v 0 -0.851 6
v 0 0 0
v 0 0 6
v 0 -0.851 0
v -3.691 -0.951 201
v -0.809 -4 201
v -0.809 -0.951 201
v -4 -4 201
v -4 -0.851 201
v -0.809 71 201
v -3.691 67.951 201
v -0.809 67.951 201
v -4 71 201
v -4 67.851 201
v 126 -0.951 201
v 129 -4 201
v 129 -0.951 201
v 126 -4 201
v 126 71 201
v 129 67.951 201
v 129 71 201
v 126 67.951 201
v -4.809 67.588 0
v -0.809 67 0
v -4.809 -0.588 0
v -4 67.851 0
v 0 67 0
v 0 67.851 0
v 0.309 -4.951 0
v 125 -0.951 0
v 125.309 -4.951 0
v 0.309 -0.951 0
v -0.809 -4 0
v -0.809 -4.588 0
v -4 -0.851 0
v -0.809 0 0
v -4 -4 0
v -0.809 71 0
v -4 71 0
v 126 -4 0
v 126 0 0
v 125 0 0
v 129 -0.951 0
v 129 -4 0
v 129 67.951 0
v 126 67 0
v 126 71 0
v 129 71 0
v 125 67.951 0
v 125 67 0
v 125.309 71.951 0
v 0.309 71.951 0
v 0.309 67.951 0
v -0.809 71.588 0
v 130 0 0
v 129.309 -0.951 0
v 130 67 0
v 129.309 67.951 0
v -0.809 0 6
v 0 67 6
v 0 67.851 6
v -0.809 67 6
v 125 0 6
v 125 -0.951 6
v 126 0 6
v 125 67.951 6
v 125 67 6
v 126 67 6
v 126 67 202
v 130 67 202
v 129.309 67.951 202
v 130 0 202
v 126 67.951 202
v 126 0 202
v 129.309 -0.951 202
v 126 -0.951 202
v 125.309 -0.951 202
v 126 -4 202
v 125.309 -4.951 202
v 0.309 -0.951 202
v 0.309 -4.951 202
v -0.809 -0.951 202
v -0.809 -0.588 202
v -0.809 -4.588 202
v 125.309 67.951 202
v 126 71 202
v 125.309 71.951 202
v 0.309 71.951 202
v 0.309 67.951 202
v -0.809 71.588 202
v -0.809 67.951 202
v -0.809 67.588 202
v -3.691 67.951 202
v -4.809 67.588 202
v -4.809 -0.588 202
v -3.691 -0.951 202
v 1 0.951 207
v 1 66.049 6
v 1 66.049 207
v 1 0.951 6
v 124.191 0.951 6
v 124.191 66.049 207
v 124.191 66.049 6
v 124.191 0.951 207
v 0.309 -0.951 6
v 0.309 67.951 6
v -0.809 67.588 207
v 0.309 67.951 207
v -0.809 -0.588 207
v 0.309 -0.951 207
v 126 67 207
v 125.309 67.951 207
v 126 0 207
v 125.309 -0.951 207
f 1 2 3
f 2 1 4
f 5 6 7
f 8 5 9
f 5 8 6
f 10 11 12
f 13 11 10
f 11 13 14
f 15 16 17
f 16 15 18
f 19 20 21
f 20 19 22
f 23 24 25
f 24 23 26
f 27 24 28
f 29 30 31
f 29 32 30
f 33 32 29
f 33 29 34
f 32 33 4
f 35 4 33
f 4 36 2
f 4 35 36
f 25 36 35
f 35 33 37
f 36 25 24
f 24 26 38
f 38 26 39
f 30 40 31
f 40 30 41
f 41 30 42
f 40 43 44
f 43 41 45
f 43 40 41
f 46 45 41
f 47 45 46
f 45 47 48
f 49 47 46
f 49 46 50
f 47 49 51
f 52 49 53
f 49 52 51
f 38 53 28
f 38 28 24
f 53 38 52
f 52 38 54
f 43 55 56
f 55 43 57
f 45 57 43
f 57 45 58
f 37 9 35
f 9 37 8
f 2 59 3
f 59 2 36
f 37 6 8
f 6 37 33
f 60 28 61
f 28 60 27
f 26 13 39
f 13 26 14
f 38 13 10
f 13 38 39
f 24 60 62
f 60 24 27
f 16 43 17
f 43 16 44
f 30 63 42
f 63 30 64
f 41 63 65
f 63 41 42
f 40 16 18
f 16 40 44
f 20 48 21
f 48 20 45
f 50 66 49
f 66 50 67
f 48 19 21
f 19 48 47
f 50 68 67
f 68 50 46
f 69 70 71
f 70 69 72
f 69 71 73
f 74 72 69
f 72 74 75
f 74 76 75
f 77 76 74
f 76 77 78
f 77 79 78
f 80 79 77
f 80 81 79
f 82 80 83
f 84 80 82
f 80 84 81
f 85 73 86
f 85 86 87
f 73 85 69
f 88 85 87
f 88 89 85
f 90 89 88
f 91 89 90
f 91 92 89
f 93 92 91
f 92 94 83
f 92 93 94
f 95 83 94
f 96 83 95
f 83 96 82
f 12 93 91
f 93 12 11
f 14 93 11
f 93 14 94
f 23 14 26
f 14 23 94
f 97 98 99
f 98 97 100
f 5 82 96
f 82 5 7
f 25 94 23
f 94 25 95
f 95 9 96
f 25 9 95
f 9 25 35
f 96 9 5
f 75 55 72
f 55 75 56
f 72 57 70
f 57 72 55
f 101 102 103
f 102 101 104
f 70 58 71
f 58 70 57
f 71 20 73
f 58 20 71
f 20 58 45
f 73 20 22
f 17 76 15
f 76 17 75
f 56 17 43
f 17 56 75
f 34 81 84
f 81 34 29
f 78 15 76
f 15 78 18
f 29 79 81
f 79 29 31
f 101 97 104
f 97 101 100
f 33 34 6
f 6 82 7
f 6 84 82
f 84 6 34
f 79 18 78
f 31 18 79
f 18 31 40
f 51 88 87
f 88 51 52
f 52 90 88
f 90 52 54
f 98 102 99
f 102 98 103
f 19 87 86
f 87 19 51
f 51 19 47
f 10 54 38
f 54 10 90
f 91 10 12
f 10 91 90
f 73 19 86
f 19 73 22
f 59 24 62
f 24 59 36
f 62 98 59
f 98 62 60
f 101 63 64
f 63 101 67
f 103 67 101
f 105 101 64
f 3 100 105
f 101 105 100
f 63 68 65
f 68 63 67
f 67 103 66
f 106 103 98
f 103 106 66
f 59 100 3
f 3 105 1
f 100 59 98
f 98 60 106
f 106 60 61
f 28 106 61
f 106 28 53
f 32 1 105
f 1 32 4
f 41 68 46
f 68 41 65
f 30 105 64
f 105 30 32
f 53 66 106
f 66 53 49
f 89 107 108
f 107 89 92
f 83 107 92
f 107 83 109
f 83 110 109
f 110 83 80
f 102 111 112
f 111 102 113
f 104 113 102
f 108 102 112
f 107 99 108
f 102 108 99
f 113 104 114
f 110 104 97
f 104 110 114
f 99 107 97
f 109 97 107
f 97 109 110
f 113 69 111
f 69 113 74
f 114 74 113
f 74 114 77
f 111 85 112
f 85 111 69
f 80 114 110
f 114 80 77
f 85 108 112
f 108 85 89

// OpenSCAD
// file: can.scad
//Can dimensions
radius = 66.2/2;
top_radius = 53.67/2;
top_rise = 14.57;
bottom_radius = 50/2;
bottom_rise = 7.4;
height = 123.53;

module can(height, radius, top_rise, top_radius, bottom_rise, bottom_radius){
    //Getting measurements correct
    adjusted_height = height - top_rise - bottom_rise;
    adjusted_top_height = adjusted_height + bottom_rise;
    
    //Making the can
    //Top
    translate([0, 0, adjusted_top_height]){
        cylinder(bottom_rise, radius, top_radius);
    }
    //Main body
    translate([0, 0, bottom_rise]){
	    cylinder(adjusted_height, radius, radius);
    }
    //Bottom of can
    cylinder(bottom_rise, bottom_radius, radius);
}
can(height, radius, top_rise, top_radius, bottom_rise, bottom_radius);
// main file
use <can.scad>
//General settings
can_height = 123.53;
dispenser_width = can_height + 2;
dispenser_length = 67;
wall_thickness = 4;
lip_wall_thickness = 2;
tall_wall_x = 125;
tall_wall_y = dispenser_length;
tall_wall_z = dispenser_length * 3;
lip_x = tall_wall_x;
lip_y = tall_wall_y;
lip_z = 5;
lip_z_offset = tall_wall_z;
opening_z = 30;

//Can settings
can_radius = 66.2/2;
can_top_radius = 53.67/2;
can_top_rise = 14.57;
can_bottom_radius = 50/2;
can_bottom_rise = 7.4;

module hopper(can_height, dispenser_width, dispenser_length, wall_thickness, lip_wall_thickness, tall_wall_x, tall_wall_y, tall_wall_z, lip_x, lip_y, lip_z){
    //left_tall_wall
    left_tall_wall_x = 0;
    left_tall_wall_y = tall_wall_y;
    left_tall_wall_z = tall_wall_z;
    left_wall_bottom_back = [left_tall_wall_x, 0, 0];
    left_wall_bottom_forward = [left_tall_wall_x, left_tall_wall_y, 0];
    left_wall_top_back = [left_tall_wall_x, 0, left_tall_wall_z];
    left_wall_top_forward = [left_tall_wall_x, left_tall_wall_y, left_tall_wall_z];
    left_wall_bottom_back_thickness = [left_tall_wall_x - wall_thickness, 0, 0];
    left_wall_bottom_forward_thickness = [left_tall_wall_x - wall_thickness, left_tall_wall_y, 0];
    left_wall_top_back_thickness = [left_tall_wall_x - wall_thickness, 0, left_tall_wall_z];
    left_wall_top_forward_thickness = [left_tall_wall_x - wall_thickness, left_tall_wall_y, left_tall_wall_z];
    left_tall_wall = [left_wall_bottom_back, left_wall_bottom_forward, left_wall_top_back, left_wall_top_forward, left_wall_bottom_back_thickness, left_wall_bottom_forward_thickness, left_wall_top_back_thickness, left_wall_top_forward_thickness];

    //right_tall_wall
    right_tall_wall_x = tall_wall_x;
    right_tall_wall_y = tall_wall_y;
    right_tall_wall_z = tall_wall_z;
    right_wall_bottom_back = [right_tall_wall_x, 0, 0];
    right_wall_bottom_forward = [right_tall_wall_x, right_tall_wall_y, 0];
    right_wall_top_back = [right_tall_wall_x, 0, right_tall_wall_z];
    right_wall_top_forward = [right_tall_wall_x, right_tall_wall_y, right_tall_wall_z];
    right_wall_bottom_back_thickness = [right_tall_wall_x + wall_thickness, 0, 0];
    right_wall_bottom_forward_thickness = [right_tall_wall_x + wall_thickness, right_tall_wall_y, 0];
    right_wall_top_back_thickness = [right_tall_wall_x + wall_thickness, 0, right_tall_wall_z];
    right_wall_top_forward_thickness = [right_tall_wall_x + wall_thickness, right_tall_wall_y, right_tall_wall_z];
    right_tall_wall = [right_wall_bottom_back, right_wall_bottom_forward, right_wall_top_back, right_wall_top_forward, right_wall_bottom_back_thickness, right_wall_bottom_forward_thickness, right_wall_top_back_thickness, right_wall_top_forward_thickness];

    //back_tall_wall
    back_tall_wall_x = tall_wall_x;
    back_tall_wall_y = 0;
    back_tall_wall_z = tall_wall_z;
    back_wall_bottom_left = [0, 0, 0];
    back_wall_bottom_right = [back_tall_wall_x, 0, 0];
    back_wall_top_left = [0, 0, back_tall_wall_z];
    back_wall_top_right = [back_tall_wall_x, 0, back_tall_wall_z];
    back_wall_bottom_left_thickness = [0, -wall_thickness, 0];
    back_wall_bottom_right_thickness = [back_tall_wall_x, -wall_thickness, 0];
    back_wall_top_left_thickness = [0, -wall_thickness, back_tall_wall_z];
    back_wall_top_right_thickness = [back_tall_wall_x, -wall_thickness, back_tall_wall_z];
    back_tall_wall = [back_wall_bottom_left, back_wall_bottom_right, back_wall_top_left, back_wall_top_right, back_wall_bottom_left_thickness, back_wall_bottom_right_thickness, back_wall_top_left_thickness, back_wall_top_right_thickness];

    //front_tall_wall
    front_tall_wall_x = tall_wall_x;
    front_tall_wall_y = tall_wall_y;
    front_tall_wall_z = tall_wall_z;
    front_tall_wall_opening = 0;
    front_wall_bottom_left = [0, front_tall_wall_y, front_tall_wall_opening];
    front_wall_bottom_right = [front_tall_wall_x, front_tall_wall_y, front_tall_wall_opening];
    front_wall_top_left = [0, front_tall_wall_y, front_tall_wall_z];
    front_wall_top_right = [front_tall_wall_x, front_tall_wall_y, front_tall_wall_z];
    front_wall_bottom_left_thickness = [0, front_tall_wall_y + wall_thickness, front_tall_wall_opening];
    front_wall_bottom_right_thickness = [front_tall_wall_x, front_tall_wall_y + wall_thickness, front_tall_wall_opening];
    front_wall_top_left_thickness = [0, front_tall_wall_y + wall_thickness, front_tall_wall_z];
    front_wall_top_right_thickness = [front_tall_wall_x, front_tall_wall_y + wall_thickness, front_tall_wall_z];
    front_tall_wall = [front_wall_bottom_left, front_wall_bottom_right, front_wall_top_left, front_wall_top_right, front_wall_bottom_left_thickness, front_wall_bottom_right_thickness, front_wall_top_left_thickness, front_wall_top_right_thickness];

    //left_lip_wall
    left_lip_wall_lip_x = 0;
    left_lip_wall_lip_y = lip_y;
    left_lip_wall_lip_z = lip_z;
    left_wall_lip_bottom_back = [left_lip_wall_lip_x, 0, lip_z_offset];
    left_wall_lip_bottom_forward = [left_lip_wall_lip_x, left_lip_wall_lip_y, lip_z_offset];
    left_wall_lip_top_back = [left_lip_wall_lip_x, 0, lip_z_offset + left_lip_wall_lip_z];
    left_wall_lip_top_forward = [left_lip_wall_lip_x, left_lip_wall_lip_y, lip_z_offset + left_lip_wall_lip_z];
    left_wall_lip_bottom_back_thickness = [left_lip_wall_lip_x, 0, lip_z_offset];
    left_wall_lip_bottom_forward_thickness = [left_lip_wall_lip_x, left_lip_wall_lip_y, lip_z_offset];
    left_wall_lip_top_back_thickness = [left_lip_wall_lip_x, 0, lip_z_offset + left_lip_wall_lip_z];
    left_wall_lip_top_forward_thickness = [left_lip_wall_lip_x, left_lip_wall_lip_y, lip_z_offset + left_lip_wall_lip_z];
    negative_left_wall_lip_bottom_back = [left_lip_wall_lip_x, 0, 0];
    negative_left_wall_lip_bottom_forward = [left_lip_wall_lip_x, left_lip_wall_lip_y, 0];
    negative_left_wall_lip_top_back = [left_lip_wall_lip_x, 0, 0];
    negative_left_wall_lip_top_forward = [left_lip_wall_lip_x, left_lip_wall_lip_y, left_lip_wall_lip_z];
    negative_left_wall_lip_bottom_back_thickness = [left_lip_wall_lip_x, 0, 0];
    negative_left_wall_lip_bottom_forward_thickness = [left_lip_wall_lip_x, left_lip_wall_lip_y, 0];
    negative_left_wall_lip_top_back_thickness = [left_lip_wall_lip_x, 0, left_lip_wall_lip_z];
    negative_left_wall_lip_top_forward_thickness = [left_lip_wall_lip_x, left_lip_wall_lip_y, left_lip_wall_lip_z];
    left_lip_wall = [left_wall_lip_bottom_back, left_wall_lip_bottom_forward, left_wall_lip_top_back, left_wall_lip_top_forward, left_wall_lip_bottom_back_thickness, left_wall_lip_bottom_forward_thickness, left_wall_lip_top_back_thickness, left_wall_lip_top_forward_thickness];
    negative_left_lip_wall = [negative_left_wall_lip_bottom_back, negative_left_wall_lip_bottom_forward, negative_left_wall_lip_top_back, negative_left_wall_lip_top_forward, negative_left_wall_lip_bottom_back_thickness, negative_left_wall_lip_bottom_forward_thickness, negative_left_wall_lip_top_back_thickness, negative_left_wall_lip_top_forward_thickness];

    //right_lip_wall
    right_lip_wall_lip_x = lip_x;
    right_lip_wall_lip_y = lip_y;
    right_lip_wall_lip_z = lip_z;
    right_wall_lip_bottom_back = [right_lip_wall_lip_x, 0, lip_z_offset];
    right_wall_lip_bottom_forward = [right_lip_wall_lip_x, right_lip_wall_lip_y, lip_z_offset];
    right_wall_lip_top_back = [right_lip_wall_lip_x, 0, lip_z_offset + right_lip_wall_lip_z];
    right_wall_lip_top_forward = [right_lip_wall_lip_x, right_lip_wall_lip_y, lip_z_offset + right_lip_wall_lip_z];
    right_wall_lip_bottom_back_thickness = [right_lip_wall_lip_x, 0, lip_z_offset];
    right_wall_lip_bottom_forward_thickness = [right_lip_wall_lip_x, right_lip_wall_lip_y, lip_z_offset];
    right_wall_lip_top_back_thickness = [right_lip_wall_lip_x, 0, lip_z_offset + right_lip_wall_lip_z];
    right_wall_lip_top_forward_thickness = [right_lip_wall_lip_x, right_lip_wall_lip_y, lip_z_offset + right_lip_wall_lip_z];
    negative_right_wall_lip_bottom_back = [right_lip_wall_lip_x, 0, 0];
    negative_right_wall_lip_bottom_forward = [right_lip_wall_lip_x, right_lip_wall_lip_y, 0];
    negative_right_wall_lip_top_back = [right_lip_wall_lip_x, 0, 0];
    negative_right_wall_lip_top_forward = [right_lip_wall_lip_x, right_lip_wall_lip_y, right_lip_wall_lip_z];
    negative_right_wall_lip_bottom_back_thickness = [right_lip_wall_lip_x, 0, 0];
    negative_right_wall_lip_bottom_forward_thickness = [right_lip_wall_lip_x, right_lip_wall_lip_y, 0];
    negative_right_wall_lip_top_back_thickness = [right_lip_wall_lip_x, 0, right_lip_wall_lip_z];
    negative_right_wall_lip_top_forward_thickness = [right_lip_wall_lip_x, right_lip_wall_lip_y, right_lip_wall_lip_z];
    right_lip_wall = [right_wall_lip_bottom_back, right_wall_lip_bottom_forward, right_wall_lip_top_back, right_wall_lip_top_forward, right_wall_lip_bottom_back_thickness, right_wall_lip_bottom_forward_thickness, right_wall_lip_top_back_thickness, right_wall_lip_top_forward_thickness];
    negative_right_lip_wall = [negative_right_wall_lip_bottom_back, negative_right_wall_lip_bottom_forward, negative_right_wall_lip_top_back, negative_right_wall_lip_top_forward, negative_right_wall_lip_bottom_back_thickness, negative_right_wall_lip_bottom_forward_thickness, negative_right_wall_lip_top_back_thickness, negative_right_wall_lip_top_forward_thickness];

    //back_lip_wall
    back_lip_wall_x = lip_x;
    back_lip_wall_y = 0;
    back_lip_wall_z = lip_z;
    back_wall_lip_bottom_left = [0, back_lip_wall_y, lip_z_offset];
    back_wall_lip_bottom_right = [back_lip_wall_x, back_lip_wall_y, lip_z_offset];
    back_wall_lip_top_left = [0, back_lip_wall_y, lip_z_offset + back_lip_wall_z];
    back_wall_lip_top_right = [back_lip_wall_x, back_lip_wall_y, lip_z_offset + back_lip_wall_z];
    back_wall_lip_bottom_left_thickness = [0, back_lip_wall_y, lip_z_offset];
    back_wall_lip_bottom_right_thickness = [back_lip_wall_x, back_lip_wall_y, lip_z_offset];
    back_wall_lip_top_left_thickness = [0, back_lip_wall_y, lip_z_offset + back_lip_wall_z];
    back_wall_lip_top_right_thickness = [back_lip_wall_x, back_lip_wall_y, lip_z_offset + back_lip_wall_z];
    negative_back_wall_lip_bottom_left = [0, back_lip_wall_y, 0];
    negative_back_wall_lip_bottom_right = [back_lip_wall_x, back_lip_wall_y, 0];
    negative_back_wall_lip_top_left = [0, back_lip_wall_y, back_lip_wall_z];
    negative_back_wall_lip_top_right = [back_lip_wall_x, back_lip_wall_y, back_lip_wall_z];
    negative_back_wall_lip_bottom_left_thickness = [0, back_lip_wall_y, 0];
    negative_back_wall_lip_bottom_right_thickness = [back_lip_wall_x, back_lip_wall_y, 0];
    negative_back_wall_lip_top_left_thickness = [0, back_lip_wall_y, back_lip_wall_z];
    negative_back_wall_lip_top_right_thickness = [back_lip_wall_x, back_lip_wall_y, back_lip_wall_z];
    back_lip_wall = [back_wall_lip_bottom_left, back_wall_lip_bottom_right, back_wall_lip_top_left, back_wall_lip_top_right, back_wall_lip_bottom_left_thickness, back_wall_lip_bottom_right_thickness, back_wall_lip_top_left_thickness, back_wall_lip_top_right_thickness];
    negative_back_lip_wall = [negative_back_wall_lip_bottom_left, negative_back_wall_lip_bottom_right, negative_back_wall_lip_top_left, negative_back_wall_lip_top_right, negative_back_wall_lip_bottom_left_thickness, negative_back_wall_lip_bottom_right_thickness, negative_back_wall_lip_top_left_thickness, negative_back_wall_lip_top_right_thickness];

    //front_lip_wall
    front_lip_wall_x = lip_x;
    front_lip_wall_y = lip_y;
    front_lip_wall_z = lip_z;
    front_wall_lip_bottom_left = [0, front_lip_wall_y, lip_z_offset];
    front_wall_lip_bottom_right = [front_lip_wall_x, front_lip_wall_y, lip_z_offset];
    front_wall_lip_top_left = [0, front_lip_wall_y, lip_z_offset + front_lip_wall_z];
    front_wall_lip_top_right = [front_lip_wall_x, front_lip_wall_y, lip_z_offset + front_lip_wall_z];
    front_wall_lip_bottom_left_thickness = [0, front_lip_wall_y, lip_z_offset];
    front_wall_lip_bottom_right_thickness = [front_lip_wall_x, front_lip_wall_y, lip_z_offset];
    front_wall_lip_top_left_thickness = [0, front_lip_wall_y, lip_z_offset + front_lip_wall_z];
    front_wall_lip_top_right_thickness = [front_lip_wall_x, front_lip_wall_y, lip_z_offset + front_lip_wall_z];
    negative_front_wall_lip_bottom_left = [0, front_lip_wall_y, 0];
    negative_front_wall_lip_bottom_right = [front_lip_wall_x, front_lip_wall_y, 0];
    negative_front_wall_lip_top_left = [0, front_lip_wall_y, front_lip_wall_z];
    negative_front_wall_lip_top_right = [front_lip_wall_x, front_lip_wall_y, front_lip_wall_z];
    negative_front_wall_lip_bottom_left_thickness = [0, front_lip_wall_y, 0];
    negative_front_wall_lip_bottom_right_thickness = [front_lip_wall_x, front_lip_wall_y, 0];
    negative_front_wall_lip_top_left_thickness = [0, front_lip_wall_y, front_lip_wall_z];
    negative_front_wall_lip_top_right_thickness = [front_lip_wall_x, front_lip_wall_y, front_lip_wall_z];
    front_lip_wall = [front_wall_lip_bottom_left, front_wall_lip_bottom_right, front_wall_lip_top_left, front_wall_lip_top_right, front_wall_lip_bottom_left_thickness, front_wall_lip_bottom_right_thickness, front_wall_lip_top_left_thickness, front_wall_lip_top_right_thickness];
    negative_front_lip_wall = [negative_front_wall_lip_bottom_left, negative_front_wall_lip_bottom_right, negative_front_wall_lip_top_left, negative_front_wall_lip_top_right, negative_front_wall_lip_bottom_left_thickness, negative_front_wall_lip_bottom_right_thickness, negative_front_wall_lip_top_left_thickness, negative_front_wall_lip_top_right_thickness];

    //Tall corners
    for(x = [-wall_thickness, tall_wall_x], y = [-wall_thickness, tall_wall_y]){
        translate([x, y, 0]) {
        cube([wall_thickness, wall_thickness, tall_wall_z]);
        }
    }

    //Magazine
    difference(){
        union(){
            //Left wall
            hull(){
                for(point = left_tall_wall){
                    translate(point){
                        cylinder(1);
                    }
                }
            }

            //Right wall
            hull(){
                    for(point = right_tall_wall){
                        translate(point){
                                cylinder(1);
                        }
                }
            }

            //Back wall
            hull(){
                for(point = back_tall_wall){
                    translate(point){
                            cylinder(1);
                    }
                }
            }

            //Front wall
            hull(){
                for(point = front_tall_wall){
                    translate(point){
                            cylinder(1);
                    }
                }
            }
        }
            //Negative lip
            //Left lip
            hull(){
                for(point = negative_left_lip_wall){
                    translate(point){
                        cylinder(1);
                    }
                }
            }
            //Right lip
            hull(){
                for(point = negative_right_lip_wall){
                    translate(point){
                            cylinder(1);
                    }
                }
            }
            //Back lip
            hull(){
            for(point = negative_back_lip_wall){
                    translate(point){
                        cylinder(1);
                    }
                }
            }
            //Front lip
            hull(){
                for(point = negative_front_lip_wall){
                    translate(point){
                        cylinder(1);
                    }
                }
            }
    }
    //Lip
    union(){
        //Left lip
        hull(){
            for(point = left_lip_wall){
                translate(point){
                    cylinder(1);
                }
        }
        }
        hull(){
            for(point = right_lip_wall){
                translate(point){
                    cylinder(1);
                }
            }
        }
        hull(){
            for(point = back_lip_wall){
                translate(point){
                    cylinder(1);
                }
            }
        }
        hull(){
            for(point = front_lip_wall){
                translate(point){
                cylinder(1);
                }
            }
        }
    }
}

module hopper_with_opening(can_height, dispenser_width, dispenser_length, wall_thickness, lip_wall_thickness, tall_wall_x, tall_wall_y, tall_wall_z, lip_x, lip_y, lip_z, opening_z){
    difference(){
        hopper(can_height, dispenser_width, dispenser_length, wall_thickness, lip_wall_thickness, tall_wall_x, tall_wall_y, tall_wall_z, lip_x, lip_y, lip_z);
        hull(){
            for (x = [wall_thickness -lip_wall_thickness, can_height -1], y = [wall_thickness, 1000], z = [0, opening_z]){
                translate([x, y, z]){
                    cylinder(1);
                }
            }
        }
    }
}

hopper(can_height, dispenser_width, dispenser_length, wall_thickness, lip_wall_thickness, tall_wall_x, tall_wall_y, tall_wall_z, lip_x, lip_y, lip_z);
/*translate([dispenser_width + 30, 0, 0]){
    hopper_with_opening(can_height, dispenser_width, dispenser_length, wall_thickness, lip_wall_thickness, tall_wall_x, tall_wall_y, tall_wall_z, lip_x, lip_y, lip_z, opening_z);
}

translate([160, 30, 30]){
    rotate([0, 90, 0]){
        can(can_height, can_radius, can_top_rise, can_top_radius, can_bottom_rise, can_bottom_radius);
    }
}*/
